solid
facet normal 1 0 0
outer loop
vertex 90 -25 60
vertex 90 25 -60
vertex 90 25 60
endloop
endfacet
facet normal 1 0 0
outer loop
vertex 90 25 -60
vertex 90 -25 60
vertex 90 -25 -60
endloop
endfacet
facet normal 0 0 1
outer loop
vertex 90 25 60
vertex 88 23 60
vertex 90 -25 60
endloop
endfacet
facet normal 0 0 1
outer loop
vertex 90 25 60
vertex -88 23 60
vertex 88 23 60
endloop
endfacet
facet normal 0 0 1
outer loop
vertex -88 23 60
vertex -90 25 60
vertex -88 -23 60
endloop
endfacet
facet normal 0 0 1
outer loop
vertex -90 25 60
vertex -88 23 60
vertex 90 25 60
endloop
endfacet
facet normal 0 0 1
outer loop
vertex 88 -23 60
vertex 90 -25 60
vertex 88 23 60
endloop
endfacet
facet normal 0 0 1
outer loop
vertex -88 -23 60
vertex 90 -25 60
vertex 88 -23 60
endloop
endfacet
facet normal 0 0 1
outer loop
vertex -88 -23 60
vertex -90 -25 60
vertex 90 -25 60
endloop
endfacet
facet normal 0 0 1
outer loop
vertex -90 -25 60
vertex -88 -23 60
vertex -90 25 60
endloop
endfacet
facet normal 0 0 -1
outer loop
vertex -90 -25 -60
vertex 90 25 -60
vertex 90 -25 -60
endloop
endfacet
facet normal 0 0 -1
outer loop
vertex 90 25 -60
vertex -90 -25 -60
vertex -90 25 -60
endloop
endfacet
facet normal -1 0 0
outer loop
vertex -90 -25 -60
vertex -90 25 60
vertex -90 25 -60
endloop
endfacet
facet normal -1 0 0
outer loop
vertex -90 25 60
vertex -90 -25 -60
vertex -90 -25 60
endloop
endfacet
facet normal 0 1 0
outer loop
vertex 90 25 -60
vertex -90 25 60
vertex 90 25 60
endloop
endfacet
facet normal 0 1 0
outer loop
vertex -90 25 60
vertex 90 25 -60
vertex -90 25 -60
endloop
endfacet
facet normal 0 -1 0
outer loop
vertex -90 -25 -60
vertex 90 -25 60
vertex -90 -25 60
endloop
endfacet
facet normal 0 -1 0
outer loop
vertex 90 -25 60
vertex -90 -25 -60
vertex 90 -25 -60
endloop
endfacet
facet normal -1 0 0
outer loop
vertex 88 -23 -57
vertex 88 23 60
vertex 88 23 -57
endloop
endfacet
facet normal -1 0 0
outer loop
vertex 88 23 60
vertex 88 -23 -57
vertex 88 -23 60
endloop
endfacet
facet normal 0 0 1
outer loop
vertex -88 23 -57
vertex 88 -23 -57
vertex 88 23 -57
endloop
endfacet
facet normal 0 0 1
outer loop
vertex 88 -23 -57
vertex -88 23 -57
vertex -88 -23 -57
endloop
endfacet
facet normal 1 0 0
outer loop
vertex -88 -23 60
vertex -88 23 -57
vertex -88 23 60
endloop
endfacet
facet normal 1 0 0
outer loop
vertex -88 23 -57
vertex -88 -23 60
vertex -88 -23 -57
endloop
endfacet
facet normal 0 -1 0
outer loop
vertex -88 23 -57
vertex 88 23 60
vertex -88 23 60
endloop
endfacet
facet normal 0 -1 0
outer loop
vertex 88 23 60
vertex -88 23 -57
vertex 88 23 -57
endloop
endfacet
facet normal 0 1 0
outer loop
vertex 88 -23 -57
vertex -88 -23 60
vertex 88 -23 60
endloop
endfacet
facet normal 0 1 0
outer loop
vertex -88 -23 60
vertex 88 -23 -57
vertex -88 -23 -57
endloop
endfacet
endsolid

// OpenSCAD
// file: ParametricDrawerSettings.scad
/* [ Parametric 3 drawer box v.1 ]
written by: Hermes Alvarado <hermesalvarado@gmail.com
*/

//Define main dimensions:
thickness = 2 ;
bottomthickness = 2;
boxwidth = 180;
boxheight = 50;
boxdepth = 120;
tolerance = .4;
//Handle dimension:
handlewidth = 12;
handledepth = 6;
//Automatic definitions:
//holeheight = (boxheight/3)-(thickness*1.3333);
//holeheight = (boxheight)-(thickness*1.3333);
holeheight = (boxheight)-(thickness);
drawerwidth = boxwidth-(thickness*2)-(tolerance*2);
drawerheight = holeheight-tolerance*2;
drawerdepth = boxdepth-bottomthickness;
drawerpositionY = boxheight*.75+drawerdepth/2;
drawerpositionX = boxwidth*.75+drawerwidth/2;
// main file
include <ParametricDrawerSettings.scad>

//Making box:
difference(){
    cube([boxwidth,boxheight,boxdepth],true);
    //translate([0,holeheight+thickness,bottomthickness]){
    //        cube([(boxwidth-(thickness*2)),holeheight,(boxdepth-bottomthickness)],true);
    //}
    translate([0,0,bottomthickness]){
            //cube([(boxwidth-(thickness*2)),holeheight,(boxdepth-bottomthickness)],true);
            cube([(boxwidth-(thickness*2)),(boxheight-(thickness*2)),(boxdepth-bottomthickness)],true);
    }
}
